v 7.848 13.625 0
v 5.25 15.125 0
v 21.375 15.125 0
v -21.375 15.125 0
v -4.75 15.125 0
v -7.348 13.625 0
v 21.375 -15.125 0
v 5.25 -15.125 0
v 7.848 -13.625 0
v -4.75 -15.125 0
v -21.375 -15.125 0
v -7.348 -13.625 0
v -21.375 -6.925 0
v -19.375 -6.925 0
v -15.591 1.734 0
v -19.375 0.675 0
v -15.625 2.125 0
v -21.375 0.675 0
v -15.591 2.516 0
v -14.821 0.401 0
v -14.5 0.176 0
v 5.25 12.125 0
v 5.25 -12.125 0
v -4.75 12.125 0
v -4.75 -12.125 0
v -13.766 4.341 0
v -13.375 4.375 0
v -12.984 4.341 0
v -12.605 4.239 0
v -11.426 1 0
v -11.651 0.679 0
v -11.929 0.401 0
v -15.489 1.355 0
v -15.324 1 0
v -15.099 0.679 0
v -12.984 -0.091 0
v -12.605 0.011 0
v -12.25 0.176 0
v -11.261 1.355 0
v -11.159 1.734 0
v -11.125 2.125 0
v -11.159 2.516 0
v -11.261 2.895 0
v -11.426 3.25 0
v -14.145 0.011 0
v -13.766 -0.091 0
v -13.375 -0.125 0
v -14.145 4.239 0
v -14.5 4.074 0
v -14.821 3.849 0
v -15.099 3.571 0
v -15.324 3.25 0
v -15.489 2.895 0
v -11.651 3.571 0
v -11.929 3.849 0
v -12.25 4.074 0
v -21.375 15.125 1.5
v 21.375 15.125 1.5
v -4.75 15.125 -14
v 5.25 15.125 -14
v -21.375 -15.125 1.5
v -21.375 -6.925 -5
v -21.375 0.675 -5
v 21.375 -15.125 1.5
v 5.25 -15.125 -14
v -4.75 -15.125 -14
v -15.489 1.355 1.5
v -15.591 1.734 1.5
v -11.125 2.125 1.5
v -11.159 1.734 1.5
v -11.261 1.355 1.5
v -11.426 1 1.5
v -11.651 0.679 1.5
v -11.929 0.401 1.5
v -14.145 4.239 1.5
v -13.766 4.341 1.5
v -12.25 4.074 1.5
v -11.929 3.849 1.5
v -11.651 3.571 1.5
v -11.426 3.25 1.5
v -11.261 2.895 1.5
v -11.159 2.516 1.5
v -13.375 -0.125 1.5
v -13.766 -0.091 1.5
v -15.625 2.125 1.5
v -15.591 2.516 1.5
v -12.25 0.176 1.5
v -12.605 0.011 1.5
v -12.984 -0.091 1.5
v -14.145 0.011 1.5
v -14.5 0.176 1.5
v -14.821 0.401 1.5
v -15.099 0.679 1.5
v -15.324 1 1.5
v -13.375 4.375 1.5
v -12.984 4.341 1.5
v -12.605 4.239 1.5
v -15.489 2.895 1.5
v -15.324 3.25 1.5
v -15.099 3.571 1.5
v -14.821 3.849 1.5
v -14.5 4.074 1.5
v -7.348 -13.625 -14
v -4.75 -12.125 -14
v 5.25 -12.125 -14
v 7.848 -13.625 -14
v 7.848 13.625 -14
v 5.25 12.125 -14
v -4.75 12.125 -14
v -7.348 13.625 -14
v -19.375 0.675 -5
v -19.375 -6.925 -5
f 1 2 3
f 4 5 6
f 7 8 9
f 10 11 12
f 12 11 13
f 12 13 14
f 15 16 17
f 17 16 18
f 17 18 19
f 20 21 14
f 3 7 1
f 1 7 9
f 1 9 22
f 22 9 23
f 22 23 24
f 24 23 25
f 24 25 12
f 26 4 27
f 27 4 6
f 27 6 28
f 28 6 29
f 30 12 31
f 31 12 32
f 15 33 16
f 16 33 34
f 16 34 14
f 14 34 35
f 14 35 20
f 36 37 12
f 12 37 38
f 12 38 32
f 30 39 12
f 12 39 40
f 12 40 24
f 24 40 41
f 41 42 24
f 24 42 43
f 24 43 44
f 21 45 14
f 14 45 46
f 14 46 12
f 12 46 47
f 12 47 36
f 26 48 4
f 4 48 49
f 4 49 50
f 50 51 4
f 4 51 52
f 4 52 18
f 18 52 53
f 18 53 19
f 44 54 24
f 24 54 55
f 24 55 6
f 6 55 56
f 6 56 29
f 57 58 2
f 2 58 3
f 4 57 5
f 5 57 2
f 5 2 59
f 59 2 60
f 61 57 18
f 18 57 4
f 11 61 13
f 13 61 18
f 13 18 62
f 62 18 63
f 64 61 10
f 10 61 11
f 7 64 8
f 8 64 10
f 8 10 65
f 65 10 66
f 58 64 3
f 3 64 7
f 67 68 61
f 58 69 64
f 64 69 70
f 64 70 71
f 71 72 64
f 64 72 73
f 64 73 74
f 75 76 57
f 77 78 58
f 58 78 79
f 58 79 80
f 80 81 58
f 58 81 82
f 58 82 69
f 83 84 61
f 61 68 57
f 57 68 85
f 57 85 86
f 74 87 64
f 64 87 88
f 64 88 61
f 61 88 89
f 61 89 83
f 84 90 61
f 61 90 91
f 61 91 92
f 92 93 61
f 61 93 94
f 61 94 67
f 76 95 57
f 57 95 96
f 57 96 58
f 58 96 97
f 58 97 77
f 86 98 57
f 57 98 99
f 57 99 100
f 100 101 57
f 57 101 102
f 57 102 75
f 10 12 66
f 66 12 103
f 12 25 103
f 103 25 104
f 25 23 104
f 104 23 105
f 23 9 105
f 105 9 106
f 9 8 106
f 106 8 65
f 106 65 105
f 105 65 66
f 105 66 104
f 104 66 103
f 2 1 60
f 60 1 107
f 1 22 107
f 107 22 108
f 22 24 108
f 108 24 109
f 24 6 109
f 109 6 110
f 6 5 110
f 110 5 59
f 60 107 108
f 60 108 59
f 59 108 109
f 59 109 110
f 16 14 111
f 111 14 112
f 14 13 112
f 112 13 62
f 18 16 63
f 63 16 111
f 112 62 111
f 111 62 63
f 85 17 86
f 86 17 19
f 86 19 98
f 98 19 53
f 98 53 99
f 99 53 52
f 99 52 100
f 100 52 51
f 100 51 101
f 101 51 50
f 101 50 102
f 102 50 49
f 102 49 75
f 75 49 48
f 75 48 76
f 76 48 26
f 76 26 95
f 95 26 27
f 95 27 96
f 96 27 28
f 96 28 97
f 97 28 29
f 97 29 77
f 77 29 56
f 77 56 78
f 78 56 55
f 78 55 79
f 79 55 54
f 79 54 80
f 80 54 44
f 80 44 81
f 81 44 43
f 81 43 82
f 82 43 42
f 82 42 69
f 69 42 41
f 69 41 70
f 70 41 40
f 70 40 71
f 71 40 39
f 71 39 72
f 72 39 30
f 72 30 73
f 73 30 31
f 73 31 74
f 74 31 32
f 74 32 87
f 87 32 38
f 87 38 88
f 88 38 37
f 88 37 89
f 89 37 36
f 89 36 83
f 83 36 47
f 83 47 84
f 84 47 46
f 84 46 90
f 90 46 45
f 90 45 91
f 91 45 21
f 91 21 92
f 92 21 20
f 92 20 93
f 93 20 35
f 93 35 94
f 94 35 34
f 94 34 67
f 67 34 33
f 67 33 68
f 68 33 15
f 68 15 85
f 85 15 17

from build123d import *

# Parameters (mm, degrees)
SKETCH1_W           = 42.75
SKETCH1_H           = 30.25
BOSS_EXTRUDE1_DEPTH = 1.5
BOSS_EXTRUDE2_DEPTH = 14
SKETCH3_W           = 2
SKETCH3_H           = 7.6
BOSS_EXTRUDE3_DEPTH = 5
SKETCH4_R           = 2.25
CUT_EXTRUDE1_DEPTH  = 2.5


with BuildPart() as part:
    # Sketch1 → Boss-Extrude1 (new body)
    with BuildSketch(Plane.XY):
        Rectangle(SKETCH1_W, SKETCH1_H)
    extrude(amount=BOSS_EXTRUDE1_DEPTH)

    # Sketch2 → Boss-Extrude2 (add)
    with BuildSketch(Plane(origin=(0, 0, 0), x_dir=(-1, 0, 0), z_dir=(0, 0, -1))):
        Polygon((7.348076211, -13.625), (4.75, -12.125), (-5.25, -12.125), (-7.848076211, -13.625), (-5.25, -15.125), (4.75, -15.125), align=None)
        Polygon((-7.848076211, 13.625), (-5.25, 12.125), (4.75, 12.125), (7.348076211, 13.625), (4.75, 15.125), (-5.25, 15.125), align=None)
    extrude(amount=BOSS_EXTRUDE2_DEPTH)

    # Sketch3 → Boss-Extrude3 (add)
    with BuildSketch(Plane(origin=(0, 0, 0), x_dir=(-1, 0, 0), z_dir=(0, 0, -1))):
        with Locations((20.375, -3.125)):
            Rectangle(SKETCH3_W, SKETCH3_H)
    extrude(amount=BOSS_EXTRUDE3_DEPTH)

    # Sketch4 → Cut-Extrude1 (cut, through all)
    with BuildSketch(Plane(origin=(0, 0, 0), x_dir=(-1, 0, 0), z_dir=(0, 0, -1))):
        with Locations((13.375, 2.125)):
            Circle(SKETCH4_R)
    extrude(amount=-CUT_EXTRUDE1_DEPTH, mode=Mode.SUBTRACT)


solid = part.part
